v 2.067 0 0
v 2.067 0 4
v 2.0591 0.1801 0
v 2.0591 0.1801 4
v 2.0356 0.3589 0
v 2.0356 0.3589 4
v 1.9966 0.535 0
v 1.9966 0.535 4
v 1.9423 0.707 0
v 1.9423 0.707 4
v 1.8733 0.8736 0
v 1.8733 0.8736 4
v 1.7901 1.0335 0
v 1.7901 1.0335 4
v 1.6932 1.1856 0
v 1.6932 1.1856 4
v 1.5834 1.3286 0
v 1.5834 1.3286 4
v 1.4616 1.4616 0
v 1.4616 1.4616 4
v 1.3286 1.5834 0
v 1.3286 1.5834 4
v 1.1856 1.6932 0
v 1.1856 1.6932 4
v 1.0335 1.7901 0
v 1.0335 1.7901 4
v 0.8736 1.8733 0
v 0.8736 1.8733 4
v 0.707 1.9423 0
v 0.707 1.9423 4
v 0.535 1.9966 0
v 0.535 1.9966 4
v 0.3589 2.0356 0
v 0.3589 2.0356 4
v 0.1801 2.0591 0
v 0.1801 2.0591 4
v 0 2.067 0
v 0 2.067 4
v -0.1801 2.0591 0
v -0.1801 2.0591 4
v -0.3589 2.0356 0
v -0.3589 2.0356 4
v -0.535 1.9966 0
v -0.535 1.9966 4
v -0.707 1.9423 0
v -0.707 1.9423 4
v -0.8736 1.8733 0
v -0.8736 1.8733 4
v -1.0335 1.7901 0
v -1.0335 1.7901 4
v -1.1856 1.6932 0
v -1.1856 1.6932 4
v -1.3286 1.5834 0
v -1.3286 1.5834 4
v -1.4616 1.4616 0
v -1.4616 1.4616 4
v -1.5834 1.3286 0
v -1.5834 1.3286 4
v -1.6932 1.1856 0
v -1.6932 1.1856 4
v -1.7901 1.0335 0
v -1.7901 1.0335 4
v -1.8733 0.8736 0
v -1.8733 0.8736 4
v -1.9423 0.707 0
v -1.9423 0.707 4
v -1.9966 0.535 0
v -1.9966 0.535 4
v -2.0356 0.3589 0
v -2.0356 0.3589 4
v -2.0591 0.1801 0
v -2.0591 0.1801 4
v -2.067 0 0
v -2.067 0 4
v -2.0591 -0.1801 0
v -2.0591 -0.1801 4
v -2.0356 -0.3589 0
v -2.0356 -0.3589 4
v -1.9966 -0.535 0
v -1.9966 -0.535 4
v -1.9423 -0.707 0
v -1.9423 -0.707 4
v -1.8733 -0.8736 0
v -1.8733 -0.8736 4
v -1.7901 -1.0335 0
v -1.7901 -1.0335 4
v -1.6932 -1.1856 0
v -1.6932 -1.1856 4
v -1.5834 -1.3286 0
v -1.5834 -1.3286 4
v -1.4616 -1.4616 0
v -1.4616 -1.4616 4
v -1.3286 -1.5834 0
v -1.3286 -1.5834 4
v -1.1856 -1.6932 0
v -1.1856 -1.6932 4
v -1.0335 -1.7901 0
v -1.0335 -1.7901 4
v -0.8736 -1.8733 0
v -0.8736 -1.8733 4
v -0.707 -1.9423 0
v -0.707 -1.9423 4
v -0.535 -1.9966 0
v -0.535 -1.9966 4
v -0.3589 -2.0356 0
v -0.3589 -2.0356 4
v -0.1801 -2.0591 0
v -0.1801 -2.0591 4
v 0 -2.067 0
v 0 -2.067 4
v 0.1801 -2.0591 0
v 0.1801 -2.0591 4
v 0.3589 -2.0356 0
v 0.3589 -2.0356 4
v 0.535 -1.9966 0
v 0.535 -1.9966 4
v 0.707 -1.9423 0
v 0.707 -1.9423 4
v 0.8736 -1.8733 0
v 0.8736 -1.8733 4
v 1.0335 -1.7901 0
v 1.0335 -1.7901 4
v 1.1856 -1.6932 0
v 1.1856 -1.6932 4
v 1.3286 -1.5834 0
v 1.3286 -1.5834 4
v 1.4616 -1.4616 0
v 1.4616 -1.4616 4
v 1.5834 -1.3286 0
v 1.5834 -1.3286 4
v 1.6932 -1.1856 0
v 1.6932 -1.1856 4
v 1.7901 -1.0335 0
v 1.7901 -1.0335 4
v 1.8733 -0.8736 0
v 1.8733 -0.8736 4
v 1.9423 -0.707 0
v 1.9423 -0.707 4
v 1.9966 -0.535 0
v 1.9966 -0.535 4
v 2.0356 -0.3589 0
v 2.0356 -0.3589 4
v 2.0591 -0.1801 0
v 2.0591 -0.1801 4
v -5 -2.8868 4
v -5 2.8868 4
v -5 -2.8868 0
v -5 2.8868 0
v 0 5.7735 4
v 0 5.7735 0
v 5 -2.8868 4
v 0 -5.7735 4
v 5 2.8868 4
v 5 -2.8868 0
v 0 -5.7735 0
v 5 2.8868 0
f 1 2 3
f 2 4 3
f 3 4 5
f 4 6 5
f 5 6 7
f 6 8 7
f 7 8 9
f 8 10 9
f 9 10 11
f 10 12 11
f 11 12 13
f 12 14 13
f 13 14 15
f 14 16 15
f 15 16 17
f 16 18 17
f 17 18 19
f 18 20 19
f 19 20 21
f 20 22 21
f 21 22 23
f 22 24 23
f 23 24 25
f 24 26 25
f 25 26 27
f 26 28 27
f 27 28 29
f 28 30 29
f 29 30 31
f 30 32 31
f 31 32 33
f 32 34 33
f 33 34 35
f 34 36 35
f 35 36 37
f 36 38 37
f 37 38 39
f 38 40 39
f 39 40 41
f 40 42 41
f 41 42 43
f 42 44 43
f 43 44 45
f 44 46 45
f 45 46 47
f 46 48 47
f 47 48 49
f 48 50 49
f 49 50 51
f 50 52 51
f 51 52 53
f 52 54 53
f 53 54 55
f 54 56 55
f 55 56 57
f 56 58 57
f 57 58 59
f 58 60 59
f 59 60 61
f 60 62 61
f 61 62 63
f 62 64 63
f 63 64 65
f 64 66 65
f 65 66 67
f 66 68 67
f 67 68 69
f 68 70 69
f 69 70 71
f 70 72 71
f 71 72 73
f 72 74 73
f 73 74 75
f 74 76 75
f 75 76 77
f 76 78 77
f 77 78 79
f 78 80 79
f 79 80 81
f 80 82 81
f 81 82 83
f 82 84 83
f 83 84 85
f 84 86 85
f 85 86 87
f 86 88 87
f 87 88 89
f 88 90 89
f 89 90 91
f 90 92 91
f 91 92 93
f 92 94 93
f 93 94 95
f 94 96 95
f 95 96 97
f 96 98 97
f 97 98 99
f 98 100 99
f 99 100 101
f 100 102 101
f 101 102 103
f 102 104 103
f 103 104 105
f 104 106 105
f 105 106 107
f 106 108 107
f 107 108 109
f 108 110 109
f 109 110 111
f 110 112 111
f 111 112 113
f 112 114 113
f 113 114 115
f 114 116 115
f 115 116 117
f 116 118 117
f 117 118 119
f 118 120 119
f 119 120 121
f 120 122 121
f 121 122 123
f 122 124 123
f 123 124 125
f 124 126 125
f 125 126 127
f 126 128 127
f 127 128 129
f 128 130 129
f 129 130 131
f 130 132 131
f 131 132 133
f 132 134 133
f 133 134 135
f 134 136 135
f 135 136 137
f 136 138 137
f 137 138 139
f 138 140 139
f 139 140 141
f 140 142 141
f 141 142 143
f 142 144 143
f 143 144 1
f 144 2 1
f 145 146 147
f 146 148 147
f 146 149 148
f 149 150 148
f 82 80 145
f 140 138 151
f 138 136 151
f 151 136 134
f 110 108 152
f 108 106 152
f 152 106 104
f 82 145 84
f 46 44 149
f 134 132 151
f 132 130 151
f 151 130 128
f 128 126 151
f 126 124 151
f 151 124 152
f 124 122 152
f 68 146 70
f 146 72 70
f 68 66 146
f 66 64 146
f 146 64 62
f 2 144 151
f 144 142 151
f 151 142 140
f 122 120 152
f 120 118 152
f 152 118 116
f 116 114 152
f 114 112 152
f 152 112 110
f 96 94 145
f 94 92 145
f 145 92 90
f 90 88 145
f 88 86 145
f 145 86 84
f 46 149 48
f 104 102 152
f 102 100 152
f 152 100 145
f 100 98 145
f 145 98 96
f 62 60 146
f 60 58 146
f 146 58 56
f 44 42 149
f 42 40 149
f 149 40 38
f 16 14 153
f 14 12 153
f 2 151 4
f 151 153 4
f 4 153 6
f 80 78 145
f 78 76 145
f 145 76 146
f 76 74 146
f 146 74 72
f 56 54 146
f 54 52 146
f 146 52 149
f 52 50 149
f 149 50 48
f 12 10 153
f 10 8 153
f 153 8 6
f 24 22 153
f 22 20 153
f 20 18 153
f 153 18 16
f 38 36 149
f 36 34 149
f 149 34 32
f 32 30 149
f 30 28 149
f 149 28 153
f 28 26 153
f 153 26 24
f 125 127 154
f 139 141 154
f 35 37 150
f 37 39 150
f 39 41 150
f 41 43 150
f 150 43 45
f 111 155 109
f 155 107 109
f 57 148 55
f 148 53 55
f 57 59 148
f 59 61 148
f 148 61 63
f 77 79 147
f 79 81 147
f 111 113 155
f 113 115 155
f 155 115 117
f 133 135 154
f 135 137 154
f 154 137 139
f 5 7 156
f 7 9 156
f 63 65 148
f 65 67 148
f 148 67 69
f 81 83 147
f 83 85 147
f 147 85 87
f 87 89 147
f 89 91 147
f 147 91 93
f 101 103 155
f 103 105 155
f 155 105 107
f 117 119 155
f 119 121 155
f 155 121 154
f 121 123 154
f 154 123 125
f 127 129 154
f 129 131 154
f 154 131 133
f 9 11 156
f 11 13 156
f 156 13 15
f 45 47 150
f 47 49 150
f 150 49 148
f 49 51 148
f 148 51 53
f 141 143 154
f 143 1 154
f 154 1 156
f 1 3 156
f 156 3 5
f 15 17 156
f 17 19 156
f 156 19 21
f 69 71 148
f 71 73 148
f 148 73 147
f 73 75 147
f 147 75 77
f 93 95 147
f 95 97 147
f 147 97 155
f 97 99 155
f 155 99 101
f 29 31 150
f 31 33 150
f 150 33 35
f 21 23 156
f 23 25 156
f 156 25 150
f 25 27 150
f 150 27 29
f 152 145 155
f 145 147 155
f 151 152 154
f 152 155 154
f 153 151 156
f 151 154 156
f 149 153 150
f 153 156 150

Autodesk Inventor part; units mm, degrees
ref_plane "YZ Plane" through (0, 0, 0) normal (1, 0, 0) x (0, 1, 0)
ref_plane "XZ Plane" through (0, 0, 0) normal (0, 1, 0) x (-1, 0, 0)
ref_plane "XY Plane" through (0, 0, 0) normal (0, 0, 1) x (1, 0, 0)
sketch "Sketch1" plane through (0, 0, 0) normal (0, 0, 1) x (1, 0, 0)
  line L0 (5, 2.8868) -> (5, -2.8868)
  line L1 (5, 2.8868) -> (0, 5.7735)
  line L2 (-5, 2.8868) -> (0, 5.7735)
  line L3 (0, -5.7735) -> (5, -2.8868)
  line L4 (-5, 2.8868) -> (-5, -2.8868)
  line L5 (-5, -2.8868) -> (0, -5.7735)
  point P0 (0, 0)
  point P1 (0, 0)
  point P2 (0, 0)
  point P3 (0, 0)
  point P4 (0, 0)
  dimension "d0" = 120
  dimension "d1" = 120
  dimension "d2" = 120
  dimension "d3" = 120
  dimension "d4" = 120
  dimension "d5" = 120
  dimension "d6" = 10
  dimension "d7" = 5
extrude "Extrusion1" add sketch "Sketch1" along normal blind 4
sketch "Sketch2" plane through (0, 0, 4) normal (0, 0, 1) x (1, 0, 0)
  point P0 (0, 0)
  point P1 (0, 0)
hole "Hole1" at (0, 0, 4) direction (0, 0, -1) diameter 4.134 end through all thread size "M5x0.8" class "6H" standard "ISO Metric profile"
properties part number "M5-nut-4mm" material "Steel, Mild"
